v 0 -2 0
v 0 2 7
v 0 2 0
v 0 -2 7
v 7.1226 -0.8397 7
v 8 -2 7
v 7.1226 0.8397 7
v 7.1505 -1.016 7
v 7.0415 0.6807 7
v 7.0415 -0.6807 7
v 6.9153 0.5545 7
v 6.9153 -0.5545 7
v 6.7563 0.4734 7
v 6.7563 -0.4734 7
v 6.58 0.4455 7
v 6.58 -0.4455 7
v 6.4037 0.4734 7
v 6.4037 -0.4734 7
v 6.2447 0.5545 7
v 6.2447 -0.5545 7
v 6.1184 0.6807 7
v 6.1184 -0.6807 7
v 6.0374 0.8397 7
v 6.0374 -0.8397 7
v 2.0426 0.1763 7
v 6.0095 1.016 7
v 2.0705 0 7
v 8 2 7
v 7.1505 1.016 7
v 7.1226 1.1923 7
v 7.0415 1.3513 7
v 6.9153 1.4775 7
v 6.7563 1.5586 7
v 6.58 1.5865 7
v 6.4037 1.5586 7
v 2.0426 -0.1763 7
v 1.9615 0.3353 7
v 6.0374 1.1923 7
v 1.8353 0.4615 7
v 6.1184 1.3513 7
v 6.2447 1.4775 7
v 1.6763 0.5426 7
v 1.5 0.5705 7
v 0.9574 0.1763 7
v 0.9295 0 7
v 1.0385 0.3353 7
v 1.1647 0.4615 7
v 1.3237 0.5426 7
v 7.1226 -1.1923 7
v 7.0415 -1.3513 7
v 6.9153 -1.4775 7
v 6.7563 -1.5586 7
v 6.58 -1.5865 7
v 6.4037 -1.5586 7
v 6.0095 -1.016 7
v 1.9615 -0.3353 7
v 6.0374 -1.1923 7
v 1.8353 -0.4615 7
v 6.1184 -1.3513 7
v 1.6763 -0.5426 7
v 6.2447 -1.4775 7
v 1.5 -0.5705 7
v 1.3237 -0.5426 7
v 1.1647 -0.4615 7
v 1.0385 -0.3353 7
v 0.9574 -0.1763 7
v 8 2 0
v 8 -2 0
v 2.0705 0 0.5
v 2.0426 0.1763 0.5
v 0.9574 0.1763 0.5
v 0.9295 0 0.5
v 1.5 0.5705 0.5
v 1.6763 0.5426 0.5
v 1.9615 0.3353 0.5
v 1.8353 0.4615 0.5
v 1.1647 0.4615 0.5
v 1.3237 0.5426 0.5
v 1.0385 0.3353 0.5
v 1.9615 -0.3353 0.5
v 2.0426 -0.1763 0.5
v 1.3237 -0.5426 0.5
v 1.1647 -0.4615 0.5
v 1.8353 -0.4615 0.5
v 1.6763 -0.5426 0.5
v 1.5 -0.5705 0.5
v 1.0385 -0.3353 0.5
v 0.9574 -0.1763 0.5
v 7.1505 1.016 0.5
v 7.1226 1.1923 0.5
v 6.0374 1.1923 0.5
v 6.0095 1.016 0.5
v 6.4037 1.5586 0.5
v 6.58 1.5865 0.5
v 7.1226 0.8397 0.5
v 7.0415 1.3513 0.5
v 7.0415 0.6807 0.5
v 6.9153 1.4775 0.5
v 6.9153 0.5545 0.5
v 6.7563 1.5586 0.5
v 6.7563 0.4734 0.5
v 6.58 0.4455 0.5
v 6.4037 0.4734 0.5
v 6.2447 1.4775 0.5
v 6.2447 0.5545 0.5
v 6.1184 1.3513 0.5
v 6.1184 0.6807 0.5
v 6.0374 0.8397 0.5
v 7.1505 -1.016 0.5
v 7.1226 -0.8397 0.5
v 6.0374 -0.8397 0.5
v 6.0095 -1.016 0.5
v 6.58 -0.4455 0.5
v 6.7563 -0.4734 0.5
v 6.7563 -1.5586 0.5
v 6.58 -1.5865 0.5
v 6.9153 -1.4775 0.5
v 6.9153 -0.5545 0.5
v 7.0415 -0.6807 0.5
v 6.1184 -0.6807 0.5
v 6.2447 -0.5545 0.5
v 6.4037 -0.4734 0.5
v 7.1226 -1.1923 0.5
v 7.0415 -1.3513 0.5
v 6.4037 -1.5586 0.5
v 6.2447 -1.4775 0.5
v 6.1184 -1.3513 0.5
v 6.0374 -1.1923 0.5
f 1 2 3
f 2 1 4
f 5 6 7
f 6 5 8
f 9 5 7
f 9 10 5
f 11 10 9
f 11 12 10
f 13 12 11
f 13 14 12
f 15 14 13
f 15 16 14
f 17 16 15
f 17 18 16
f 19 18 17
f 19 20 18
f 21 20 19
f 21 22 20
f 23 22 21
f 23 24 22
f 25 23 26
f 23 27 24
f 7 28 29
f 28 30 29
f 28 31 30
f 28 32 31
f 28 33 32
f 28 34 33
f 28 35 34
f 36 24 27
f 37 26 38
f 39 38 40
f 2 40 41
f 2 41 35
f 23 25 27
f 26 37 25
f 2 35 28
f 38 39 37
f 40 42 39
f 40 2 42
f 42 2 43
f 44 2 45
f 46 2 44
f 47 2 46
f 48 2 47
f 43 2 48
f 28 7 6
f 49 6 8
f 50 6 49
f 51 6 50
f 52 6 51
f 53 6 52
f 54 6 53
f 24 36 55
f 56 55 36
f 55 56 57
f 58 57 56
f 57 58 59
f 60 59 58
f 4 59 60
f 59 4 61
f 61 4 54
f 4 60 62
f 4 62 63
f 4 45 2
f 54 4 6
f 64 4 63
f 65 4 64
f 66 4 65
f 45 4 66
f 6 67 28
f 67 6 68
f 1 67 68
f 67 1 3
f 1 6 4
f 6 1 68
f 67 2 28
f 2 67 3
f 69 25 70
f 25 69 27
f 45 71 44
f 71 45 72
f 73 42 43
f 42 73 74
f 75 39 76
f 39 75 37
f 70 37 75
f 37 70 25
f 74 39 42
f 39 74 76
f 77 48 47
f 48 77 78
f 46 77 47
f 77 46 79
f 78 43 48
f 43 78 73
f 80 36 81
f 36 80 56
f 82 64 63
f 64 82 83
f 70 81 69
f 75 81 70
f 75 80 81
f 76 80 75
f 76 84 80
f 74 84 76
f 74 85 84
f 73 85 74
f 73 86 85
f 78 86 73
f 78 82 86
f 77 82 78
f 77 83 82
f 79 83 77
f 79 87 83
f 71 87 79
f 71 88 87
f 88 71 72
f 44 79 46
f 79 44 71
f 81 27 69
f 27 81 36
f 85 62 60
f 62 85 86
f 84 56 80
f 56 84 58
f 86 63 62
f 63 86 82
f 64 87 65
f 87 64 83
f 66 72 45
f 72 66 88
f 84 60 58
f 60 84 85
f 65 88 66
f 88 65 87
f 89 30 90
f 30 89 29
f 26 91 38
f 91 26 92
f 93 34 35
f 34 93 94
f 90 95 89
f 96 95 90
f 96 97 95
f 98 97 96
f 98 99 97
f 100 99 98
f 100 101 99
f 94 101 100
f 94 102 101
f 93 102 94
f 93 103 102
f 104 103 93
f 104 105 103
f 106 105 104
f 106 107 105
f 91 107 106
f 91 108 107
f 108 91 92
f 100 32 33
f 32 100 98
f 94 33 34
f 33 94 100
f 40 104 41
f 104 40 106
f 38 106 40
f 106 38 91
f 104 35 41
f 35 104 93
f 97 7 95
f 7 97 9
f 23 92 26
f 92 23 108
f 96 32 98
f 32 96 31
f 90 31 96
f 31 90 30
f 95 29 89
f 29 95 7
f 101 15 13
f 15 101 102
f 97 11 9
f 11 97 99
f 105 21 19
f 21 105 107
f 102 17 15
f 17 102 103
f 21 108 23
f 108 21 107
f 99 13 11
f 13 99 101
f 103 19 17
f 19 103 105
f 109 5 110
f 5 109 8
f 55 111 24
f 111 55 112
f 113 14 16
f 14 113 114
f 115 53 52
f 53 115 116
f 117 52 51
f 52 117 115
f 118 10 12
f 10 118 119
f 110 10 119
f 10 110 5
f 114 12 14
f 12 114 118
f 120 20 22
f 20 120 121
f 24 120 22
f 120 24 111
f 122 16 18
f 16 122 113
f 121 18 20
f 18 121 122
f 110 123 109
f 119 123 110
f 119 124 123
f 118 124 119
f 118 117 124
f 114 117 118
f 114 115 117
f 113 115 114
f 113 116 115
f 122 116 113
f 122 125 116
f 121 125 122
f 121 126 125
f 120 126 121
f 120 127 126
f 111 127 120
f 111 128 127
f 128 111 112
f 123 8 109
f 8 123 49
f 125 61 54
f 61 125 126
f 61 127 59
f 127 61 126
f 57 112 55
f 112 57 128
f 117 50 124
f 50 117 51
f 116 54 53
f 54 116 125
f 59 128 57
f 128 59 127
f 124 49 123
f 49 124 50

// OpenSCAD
$fn=20;

isx = 1.5;       // Inital Spacing X

a_dia_tol = 0.15; // Alignment Hole Tolerance
p_dia_tol = 0.01; // Probe Hole Tolerance

align_pin_dia = 0.991+a_dia_tol; // Alignment Pin Diamenter
probe_pin_dia = 0.787+p_dia_tol; // Probe Pin Diameter

/* Probe Clip Dimention */
boxx = 8;
boxy = 4;
boxh = 7;
his = 0.5; // Alignment/Probe hole offset height spacing

/* Probe Pair Spacing */
pps = 1.270;// mm probe pair spacing
pys = 0.635; // Probe spacing from x axis along y axis

/* Align Hole Calc */
ap1xs   = isx;        // Align pin 1 x spacing
ap2a3xs = ap1xs+5.080; // Align pin 2&3 x spacing
ap2a3ys = 1.016;

/* Probe Shield */
// http://www.tag-connect.com/Materials/TC2030-IDC.pdf
pss = ap1xs + pps - (probe_pin_dia/2);
psx = pps*2 + probe_pin_dia;
psy = 1.016*2;

/* Probe Pair Space Calc */
pp1s = ap1xs + pps*1; // mm spacing 
pp2s = ap1xs + pps*2; // mm spacing 
pp3s = ap1xs + pps*3; // mm spacing 

/* 3D Model */
difference() {
translate([0  , -boxy/2  , 0])
  /* Main Plug */
  cube([boxx,boxy,boxh]);

/* Align Hole */
#translate([ap1xs   , 0         , his])
    cylinder(r=align_pin_dia/2, h=boxh);
#translate([ap2a3xs , +ap2a3ys  , his])
    cylinder(r=align_pin_dia/2, h=boxh);
#translate([ap2a3xs , -ap2a3ys  , his])
    cylinder(r=align_pin_dia/2, h=boxh);

/* Probe Pair 1 */
%translate([pp1s, +pys  , his])
    cylinder(r=probe_pin_dia/2, h=boxh);
%translate([pp1s, -pys  , his])
    cylinder(r=probe_pin_dia/2, h=boxh);
/* Probe Pair 2 */
%translate([pp2s, +pys  , his])
    cylinder(r=probe_pin_dia/2, h=boxh);
%translate([pp2s, -pys  , his])
    cylinder(r=probe_pin_dia/2, h=boxh);
/* Probe Pair 3 */
%translate([pp3s, +pys  , his])
    cylinder(r=probe_pin_dia/2, h=boxh);
%translate([pp3s, -pys  , his])
    cylinder(r=probe_pin_dia/2, h=boxh);
}
